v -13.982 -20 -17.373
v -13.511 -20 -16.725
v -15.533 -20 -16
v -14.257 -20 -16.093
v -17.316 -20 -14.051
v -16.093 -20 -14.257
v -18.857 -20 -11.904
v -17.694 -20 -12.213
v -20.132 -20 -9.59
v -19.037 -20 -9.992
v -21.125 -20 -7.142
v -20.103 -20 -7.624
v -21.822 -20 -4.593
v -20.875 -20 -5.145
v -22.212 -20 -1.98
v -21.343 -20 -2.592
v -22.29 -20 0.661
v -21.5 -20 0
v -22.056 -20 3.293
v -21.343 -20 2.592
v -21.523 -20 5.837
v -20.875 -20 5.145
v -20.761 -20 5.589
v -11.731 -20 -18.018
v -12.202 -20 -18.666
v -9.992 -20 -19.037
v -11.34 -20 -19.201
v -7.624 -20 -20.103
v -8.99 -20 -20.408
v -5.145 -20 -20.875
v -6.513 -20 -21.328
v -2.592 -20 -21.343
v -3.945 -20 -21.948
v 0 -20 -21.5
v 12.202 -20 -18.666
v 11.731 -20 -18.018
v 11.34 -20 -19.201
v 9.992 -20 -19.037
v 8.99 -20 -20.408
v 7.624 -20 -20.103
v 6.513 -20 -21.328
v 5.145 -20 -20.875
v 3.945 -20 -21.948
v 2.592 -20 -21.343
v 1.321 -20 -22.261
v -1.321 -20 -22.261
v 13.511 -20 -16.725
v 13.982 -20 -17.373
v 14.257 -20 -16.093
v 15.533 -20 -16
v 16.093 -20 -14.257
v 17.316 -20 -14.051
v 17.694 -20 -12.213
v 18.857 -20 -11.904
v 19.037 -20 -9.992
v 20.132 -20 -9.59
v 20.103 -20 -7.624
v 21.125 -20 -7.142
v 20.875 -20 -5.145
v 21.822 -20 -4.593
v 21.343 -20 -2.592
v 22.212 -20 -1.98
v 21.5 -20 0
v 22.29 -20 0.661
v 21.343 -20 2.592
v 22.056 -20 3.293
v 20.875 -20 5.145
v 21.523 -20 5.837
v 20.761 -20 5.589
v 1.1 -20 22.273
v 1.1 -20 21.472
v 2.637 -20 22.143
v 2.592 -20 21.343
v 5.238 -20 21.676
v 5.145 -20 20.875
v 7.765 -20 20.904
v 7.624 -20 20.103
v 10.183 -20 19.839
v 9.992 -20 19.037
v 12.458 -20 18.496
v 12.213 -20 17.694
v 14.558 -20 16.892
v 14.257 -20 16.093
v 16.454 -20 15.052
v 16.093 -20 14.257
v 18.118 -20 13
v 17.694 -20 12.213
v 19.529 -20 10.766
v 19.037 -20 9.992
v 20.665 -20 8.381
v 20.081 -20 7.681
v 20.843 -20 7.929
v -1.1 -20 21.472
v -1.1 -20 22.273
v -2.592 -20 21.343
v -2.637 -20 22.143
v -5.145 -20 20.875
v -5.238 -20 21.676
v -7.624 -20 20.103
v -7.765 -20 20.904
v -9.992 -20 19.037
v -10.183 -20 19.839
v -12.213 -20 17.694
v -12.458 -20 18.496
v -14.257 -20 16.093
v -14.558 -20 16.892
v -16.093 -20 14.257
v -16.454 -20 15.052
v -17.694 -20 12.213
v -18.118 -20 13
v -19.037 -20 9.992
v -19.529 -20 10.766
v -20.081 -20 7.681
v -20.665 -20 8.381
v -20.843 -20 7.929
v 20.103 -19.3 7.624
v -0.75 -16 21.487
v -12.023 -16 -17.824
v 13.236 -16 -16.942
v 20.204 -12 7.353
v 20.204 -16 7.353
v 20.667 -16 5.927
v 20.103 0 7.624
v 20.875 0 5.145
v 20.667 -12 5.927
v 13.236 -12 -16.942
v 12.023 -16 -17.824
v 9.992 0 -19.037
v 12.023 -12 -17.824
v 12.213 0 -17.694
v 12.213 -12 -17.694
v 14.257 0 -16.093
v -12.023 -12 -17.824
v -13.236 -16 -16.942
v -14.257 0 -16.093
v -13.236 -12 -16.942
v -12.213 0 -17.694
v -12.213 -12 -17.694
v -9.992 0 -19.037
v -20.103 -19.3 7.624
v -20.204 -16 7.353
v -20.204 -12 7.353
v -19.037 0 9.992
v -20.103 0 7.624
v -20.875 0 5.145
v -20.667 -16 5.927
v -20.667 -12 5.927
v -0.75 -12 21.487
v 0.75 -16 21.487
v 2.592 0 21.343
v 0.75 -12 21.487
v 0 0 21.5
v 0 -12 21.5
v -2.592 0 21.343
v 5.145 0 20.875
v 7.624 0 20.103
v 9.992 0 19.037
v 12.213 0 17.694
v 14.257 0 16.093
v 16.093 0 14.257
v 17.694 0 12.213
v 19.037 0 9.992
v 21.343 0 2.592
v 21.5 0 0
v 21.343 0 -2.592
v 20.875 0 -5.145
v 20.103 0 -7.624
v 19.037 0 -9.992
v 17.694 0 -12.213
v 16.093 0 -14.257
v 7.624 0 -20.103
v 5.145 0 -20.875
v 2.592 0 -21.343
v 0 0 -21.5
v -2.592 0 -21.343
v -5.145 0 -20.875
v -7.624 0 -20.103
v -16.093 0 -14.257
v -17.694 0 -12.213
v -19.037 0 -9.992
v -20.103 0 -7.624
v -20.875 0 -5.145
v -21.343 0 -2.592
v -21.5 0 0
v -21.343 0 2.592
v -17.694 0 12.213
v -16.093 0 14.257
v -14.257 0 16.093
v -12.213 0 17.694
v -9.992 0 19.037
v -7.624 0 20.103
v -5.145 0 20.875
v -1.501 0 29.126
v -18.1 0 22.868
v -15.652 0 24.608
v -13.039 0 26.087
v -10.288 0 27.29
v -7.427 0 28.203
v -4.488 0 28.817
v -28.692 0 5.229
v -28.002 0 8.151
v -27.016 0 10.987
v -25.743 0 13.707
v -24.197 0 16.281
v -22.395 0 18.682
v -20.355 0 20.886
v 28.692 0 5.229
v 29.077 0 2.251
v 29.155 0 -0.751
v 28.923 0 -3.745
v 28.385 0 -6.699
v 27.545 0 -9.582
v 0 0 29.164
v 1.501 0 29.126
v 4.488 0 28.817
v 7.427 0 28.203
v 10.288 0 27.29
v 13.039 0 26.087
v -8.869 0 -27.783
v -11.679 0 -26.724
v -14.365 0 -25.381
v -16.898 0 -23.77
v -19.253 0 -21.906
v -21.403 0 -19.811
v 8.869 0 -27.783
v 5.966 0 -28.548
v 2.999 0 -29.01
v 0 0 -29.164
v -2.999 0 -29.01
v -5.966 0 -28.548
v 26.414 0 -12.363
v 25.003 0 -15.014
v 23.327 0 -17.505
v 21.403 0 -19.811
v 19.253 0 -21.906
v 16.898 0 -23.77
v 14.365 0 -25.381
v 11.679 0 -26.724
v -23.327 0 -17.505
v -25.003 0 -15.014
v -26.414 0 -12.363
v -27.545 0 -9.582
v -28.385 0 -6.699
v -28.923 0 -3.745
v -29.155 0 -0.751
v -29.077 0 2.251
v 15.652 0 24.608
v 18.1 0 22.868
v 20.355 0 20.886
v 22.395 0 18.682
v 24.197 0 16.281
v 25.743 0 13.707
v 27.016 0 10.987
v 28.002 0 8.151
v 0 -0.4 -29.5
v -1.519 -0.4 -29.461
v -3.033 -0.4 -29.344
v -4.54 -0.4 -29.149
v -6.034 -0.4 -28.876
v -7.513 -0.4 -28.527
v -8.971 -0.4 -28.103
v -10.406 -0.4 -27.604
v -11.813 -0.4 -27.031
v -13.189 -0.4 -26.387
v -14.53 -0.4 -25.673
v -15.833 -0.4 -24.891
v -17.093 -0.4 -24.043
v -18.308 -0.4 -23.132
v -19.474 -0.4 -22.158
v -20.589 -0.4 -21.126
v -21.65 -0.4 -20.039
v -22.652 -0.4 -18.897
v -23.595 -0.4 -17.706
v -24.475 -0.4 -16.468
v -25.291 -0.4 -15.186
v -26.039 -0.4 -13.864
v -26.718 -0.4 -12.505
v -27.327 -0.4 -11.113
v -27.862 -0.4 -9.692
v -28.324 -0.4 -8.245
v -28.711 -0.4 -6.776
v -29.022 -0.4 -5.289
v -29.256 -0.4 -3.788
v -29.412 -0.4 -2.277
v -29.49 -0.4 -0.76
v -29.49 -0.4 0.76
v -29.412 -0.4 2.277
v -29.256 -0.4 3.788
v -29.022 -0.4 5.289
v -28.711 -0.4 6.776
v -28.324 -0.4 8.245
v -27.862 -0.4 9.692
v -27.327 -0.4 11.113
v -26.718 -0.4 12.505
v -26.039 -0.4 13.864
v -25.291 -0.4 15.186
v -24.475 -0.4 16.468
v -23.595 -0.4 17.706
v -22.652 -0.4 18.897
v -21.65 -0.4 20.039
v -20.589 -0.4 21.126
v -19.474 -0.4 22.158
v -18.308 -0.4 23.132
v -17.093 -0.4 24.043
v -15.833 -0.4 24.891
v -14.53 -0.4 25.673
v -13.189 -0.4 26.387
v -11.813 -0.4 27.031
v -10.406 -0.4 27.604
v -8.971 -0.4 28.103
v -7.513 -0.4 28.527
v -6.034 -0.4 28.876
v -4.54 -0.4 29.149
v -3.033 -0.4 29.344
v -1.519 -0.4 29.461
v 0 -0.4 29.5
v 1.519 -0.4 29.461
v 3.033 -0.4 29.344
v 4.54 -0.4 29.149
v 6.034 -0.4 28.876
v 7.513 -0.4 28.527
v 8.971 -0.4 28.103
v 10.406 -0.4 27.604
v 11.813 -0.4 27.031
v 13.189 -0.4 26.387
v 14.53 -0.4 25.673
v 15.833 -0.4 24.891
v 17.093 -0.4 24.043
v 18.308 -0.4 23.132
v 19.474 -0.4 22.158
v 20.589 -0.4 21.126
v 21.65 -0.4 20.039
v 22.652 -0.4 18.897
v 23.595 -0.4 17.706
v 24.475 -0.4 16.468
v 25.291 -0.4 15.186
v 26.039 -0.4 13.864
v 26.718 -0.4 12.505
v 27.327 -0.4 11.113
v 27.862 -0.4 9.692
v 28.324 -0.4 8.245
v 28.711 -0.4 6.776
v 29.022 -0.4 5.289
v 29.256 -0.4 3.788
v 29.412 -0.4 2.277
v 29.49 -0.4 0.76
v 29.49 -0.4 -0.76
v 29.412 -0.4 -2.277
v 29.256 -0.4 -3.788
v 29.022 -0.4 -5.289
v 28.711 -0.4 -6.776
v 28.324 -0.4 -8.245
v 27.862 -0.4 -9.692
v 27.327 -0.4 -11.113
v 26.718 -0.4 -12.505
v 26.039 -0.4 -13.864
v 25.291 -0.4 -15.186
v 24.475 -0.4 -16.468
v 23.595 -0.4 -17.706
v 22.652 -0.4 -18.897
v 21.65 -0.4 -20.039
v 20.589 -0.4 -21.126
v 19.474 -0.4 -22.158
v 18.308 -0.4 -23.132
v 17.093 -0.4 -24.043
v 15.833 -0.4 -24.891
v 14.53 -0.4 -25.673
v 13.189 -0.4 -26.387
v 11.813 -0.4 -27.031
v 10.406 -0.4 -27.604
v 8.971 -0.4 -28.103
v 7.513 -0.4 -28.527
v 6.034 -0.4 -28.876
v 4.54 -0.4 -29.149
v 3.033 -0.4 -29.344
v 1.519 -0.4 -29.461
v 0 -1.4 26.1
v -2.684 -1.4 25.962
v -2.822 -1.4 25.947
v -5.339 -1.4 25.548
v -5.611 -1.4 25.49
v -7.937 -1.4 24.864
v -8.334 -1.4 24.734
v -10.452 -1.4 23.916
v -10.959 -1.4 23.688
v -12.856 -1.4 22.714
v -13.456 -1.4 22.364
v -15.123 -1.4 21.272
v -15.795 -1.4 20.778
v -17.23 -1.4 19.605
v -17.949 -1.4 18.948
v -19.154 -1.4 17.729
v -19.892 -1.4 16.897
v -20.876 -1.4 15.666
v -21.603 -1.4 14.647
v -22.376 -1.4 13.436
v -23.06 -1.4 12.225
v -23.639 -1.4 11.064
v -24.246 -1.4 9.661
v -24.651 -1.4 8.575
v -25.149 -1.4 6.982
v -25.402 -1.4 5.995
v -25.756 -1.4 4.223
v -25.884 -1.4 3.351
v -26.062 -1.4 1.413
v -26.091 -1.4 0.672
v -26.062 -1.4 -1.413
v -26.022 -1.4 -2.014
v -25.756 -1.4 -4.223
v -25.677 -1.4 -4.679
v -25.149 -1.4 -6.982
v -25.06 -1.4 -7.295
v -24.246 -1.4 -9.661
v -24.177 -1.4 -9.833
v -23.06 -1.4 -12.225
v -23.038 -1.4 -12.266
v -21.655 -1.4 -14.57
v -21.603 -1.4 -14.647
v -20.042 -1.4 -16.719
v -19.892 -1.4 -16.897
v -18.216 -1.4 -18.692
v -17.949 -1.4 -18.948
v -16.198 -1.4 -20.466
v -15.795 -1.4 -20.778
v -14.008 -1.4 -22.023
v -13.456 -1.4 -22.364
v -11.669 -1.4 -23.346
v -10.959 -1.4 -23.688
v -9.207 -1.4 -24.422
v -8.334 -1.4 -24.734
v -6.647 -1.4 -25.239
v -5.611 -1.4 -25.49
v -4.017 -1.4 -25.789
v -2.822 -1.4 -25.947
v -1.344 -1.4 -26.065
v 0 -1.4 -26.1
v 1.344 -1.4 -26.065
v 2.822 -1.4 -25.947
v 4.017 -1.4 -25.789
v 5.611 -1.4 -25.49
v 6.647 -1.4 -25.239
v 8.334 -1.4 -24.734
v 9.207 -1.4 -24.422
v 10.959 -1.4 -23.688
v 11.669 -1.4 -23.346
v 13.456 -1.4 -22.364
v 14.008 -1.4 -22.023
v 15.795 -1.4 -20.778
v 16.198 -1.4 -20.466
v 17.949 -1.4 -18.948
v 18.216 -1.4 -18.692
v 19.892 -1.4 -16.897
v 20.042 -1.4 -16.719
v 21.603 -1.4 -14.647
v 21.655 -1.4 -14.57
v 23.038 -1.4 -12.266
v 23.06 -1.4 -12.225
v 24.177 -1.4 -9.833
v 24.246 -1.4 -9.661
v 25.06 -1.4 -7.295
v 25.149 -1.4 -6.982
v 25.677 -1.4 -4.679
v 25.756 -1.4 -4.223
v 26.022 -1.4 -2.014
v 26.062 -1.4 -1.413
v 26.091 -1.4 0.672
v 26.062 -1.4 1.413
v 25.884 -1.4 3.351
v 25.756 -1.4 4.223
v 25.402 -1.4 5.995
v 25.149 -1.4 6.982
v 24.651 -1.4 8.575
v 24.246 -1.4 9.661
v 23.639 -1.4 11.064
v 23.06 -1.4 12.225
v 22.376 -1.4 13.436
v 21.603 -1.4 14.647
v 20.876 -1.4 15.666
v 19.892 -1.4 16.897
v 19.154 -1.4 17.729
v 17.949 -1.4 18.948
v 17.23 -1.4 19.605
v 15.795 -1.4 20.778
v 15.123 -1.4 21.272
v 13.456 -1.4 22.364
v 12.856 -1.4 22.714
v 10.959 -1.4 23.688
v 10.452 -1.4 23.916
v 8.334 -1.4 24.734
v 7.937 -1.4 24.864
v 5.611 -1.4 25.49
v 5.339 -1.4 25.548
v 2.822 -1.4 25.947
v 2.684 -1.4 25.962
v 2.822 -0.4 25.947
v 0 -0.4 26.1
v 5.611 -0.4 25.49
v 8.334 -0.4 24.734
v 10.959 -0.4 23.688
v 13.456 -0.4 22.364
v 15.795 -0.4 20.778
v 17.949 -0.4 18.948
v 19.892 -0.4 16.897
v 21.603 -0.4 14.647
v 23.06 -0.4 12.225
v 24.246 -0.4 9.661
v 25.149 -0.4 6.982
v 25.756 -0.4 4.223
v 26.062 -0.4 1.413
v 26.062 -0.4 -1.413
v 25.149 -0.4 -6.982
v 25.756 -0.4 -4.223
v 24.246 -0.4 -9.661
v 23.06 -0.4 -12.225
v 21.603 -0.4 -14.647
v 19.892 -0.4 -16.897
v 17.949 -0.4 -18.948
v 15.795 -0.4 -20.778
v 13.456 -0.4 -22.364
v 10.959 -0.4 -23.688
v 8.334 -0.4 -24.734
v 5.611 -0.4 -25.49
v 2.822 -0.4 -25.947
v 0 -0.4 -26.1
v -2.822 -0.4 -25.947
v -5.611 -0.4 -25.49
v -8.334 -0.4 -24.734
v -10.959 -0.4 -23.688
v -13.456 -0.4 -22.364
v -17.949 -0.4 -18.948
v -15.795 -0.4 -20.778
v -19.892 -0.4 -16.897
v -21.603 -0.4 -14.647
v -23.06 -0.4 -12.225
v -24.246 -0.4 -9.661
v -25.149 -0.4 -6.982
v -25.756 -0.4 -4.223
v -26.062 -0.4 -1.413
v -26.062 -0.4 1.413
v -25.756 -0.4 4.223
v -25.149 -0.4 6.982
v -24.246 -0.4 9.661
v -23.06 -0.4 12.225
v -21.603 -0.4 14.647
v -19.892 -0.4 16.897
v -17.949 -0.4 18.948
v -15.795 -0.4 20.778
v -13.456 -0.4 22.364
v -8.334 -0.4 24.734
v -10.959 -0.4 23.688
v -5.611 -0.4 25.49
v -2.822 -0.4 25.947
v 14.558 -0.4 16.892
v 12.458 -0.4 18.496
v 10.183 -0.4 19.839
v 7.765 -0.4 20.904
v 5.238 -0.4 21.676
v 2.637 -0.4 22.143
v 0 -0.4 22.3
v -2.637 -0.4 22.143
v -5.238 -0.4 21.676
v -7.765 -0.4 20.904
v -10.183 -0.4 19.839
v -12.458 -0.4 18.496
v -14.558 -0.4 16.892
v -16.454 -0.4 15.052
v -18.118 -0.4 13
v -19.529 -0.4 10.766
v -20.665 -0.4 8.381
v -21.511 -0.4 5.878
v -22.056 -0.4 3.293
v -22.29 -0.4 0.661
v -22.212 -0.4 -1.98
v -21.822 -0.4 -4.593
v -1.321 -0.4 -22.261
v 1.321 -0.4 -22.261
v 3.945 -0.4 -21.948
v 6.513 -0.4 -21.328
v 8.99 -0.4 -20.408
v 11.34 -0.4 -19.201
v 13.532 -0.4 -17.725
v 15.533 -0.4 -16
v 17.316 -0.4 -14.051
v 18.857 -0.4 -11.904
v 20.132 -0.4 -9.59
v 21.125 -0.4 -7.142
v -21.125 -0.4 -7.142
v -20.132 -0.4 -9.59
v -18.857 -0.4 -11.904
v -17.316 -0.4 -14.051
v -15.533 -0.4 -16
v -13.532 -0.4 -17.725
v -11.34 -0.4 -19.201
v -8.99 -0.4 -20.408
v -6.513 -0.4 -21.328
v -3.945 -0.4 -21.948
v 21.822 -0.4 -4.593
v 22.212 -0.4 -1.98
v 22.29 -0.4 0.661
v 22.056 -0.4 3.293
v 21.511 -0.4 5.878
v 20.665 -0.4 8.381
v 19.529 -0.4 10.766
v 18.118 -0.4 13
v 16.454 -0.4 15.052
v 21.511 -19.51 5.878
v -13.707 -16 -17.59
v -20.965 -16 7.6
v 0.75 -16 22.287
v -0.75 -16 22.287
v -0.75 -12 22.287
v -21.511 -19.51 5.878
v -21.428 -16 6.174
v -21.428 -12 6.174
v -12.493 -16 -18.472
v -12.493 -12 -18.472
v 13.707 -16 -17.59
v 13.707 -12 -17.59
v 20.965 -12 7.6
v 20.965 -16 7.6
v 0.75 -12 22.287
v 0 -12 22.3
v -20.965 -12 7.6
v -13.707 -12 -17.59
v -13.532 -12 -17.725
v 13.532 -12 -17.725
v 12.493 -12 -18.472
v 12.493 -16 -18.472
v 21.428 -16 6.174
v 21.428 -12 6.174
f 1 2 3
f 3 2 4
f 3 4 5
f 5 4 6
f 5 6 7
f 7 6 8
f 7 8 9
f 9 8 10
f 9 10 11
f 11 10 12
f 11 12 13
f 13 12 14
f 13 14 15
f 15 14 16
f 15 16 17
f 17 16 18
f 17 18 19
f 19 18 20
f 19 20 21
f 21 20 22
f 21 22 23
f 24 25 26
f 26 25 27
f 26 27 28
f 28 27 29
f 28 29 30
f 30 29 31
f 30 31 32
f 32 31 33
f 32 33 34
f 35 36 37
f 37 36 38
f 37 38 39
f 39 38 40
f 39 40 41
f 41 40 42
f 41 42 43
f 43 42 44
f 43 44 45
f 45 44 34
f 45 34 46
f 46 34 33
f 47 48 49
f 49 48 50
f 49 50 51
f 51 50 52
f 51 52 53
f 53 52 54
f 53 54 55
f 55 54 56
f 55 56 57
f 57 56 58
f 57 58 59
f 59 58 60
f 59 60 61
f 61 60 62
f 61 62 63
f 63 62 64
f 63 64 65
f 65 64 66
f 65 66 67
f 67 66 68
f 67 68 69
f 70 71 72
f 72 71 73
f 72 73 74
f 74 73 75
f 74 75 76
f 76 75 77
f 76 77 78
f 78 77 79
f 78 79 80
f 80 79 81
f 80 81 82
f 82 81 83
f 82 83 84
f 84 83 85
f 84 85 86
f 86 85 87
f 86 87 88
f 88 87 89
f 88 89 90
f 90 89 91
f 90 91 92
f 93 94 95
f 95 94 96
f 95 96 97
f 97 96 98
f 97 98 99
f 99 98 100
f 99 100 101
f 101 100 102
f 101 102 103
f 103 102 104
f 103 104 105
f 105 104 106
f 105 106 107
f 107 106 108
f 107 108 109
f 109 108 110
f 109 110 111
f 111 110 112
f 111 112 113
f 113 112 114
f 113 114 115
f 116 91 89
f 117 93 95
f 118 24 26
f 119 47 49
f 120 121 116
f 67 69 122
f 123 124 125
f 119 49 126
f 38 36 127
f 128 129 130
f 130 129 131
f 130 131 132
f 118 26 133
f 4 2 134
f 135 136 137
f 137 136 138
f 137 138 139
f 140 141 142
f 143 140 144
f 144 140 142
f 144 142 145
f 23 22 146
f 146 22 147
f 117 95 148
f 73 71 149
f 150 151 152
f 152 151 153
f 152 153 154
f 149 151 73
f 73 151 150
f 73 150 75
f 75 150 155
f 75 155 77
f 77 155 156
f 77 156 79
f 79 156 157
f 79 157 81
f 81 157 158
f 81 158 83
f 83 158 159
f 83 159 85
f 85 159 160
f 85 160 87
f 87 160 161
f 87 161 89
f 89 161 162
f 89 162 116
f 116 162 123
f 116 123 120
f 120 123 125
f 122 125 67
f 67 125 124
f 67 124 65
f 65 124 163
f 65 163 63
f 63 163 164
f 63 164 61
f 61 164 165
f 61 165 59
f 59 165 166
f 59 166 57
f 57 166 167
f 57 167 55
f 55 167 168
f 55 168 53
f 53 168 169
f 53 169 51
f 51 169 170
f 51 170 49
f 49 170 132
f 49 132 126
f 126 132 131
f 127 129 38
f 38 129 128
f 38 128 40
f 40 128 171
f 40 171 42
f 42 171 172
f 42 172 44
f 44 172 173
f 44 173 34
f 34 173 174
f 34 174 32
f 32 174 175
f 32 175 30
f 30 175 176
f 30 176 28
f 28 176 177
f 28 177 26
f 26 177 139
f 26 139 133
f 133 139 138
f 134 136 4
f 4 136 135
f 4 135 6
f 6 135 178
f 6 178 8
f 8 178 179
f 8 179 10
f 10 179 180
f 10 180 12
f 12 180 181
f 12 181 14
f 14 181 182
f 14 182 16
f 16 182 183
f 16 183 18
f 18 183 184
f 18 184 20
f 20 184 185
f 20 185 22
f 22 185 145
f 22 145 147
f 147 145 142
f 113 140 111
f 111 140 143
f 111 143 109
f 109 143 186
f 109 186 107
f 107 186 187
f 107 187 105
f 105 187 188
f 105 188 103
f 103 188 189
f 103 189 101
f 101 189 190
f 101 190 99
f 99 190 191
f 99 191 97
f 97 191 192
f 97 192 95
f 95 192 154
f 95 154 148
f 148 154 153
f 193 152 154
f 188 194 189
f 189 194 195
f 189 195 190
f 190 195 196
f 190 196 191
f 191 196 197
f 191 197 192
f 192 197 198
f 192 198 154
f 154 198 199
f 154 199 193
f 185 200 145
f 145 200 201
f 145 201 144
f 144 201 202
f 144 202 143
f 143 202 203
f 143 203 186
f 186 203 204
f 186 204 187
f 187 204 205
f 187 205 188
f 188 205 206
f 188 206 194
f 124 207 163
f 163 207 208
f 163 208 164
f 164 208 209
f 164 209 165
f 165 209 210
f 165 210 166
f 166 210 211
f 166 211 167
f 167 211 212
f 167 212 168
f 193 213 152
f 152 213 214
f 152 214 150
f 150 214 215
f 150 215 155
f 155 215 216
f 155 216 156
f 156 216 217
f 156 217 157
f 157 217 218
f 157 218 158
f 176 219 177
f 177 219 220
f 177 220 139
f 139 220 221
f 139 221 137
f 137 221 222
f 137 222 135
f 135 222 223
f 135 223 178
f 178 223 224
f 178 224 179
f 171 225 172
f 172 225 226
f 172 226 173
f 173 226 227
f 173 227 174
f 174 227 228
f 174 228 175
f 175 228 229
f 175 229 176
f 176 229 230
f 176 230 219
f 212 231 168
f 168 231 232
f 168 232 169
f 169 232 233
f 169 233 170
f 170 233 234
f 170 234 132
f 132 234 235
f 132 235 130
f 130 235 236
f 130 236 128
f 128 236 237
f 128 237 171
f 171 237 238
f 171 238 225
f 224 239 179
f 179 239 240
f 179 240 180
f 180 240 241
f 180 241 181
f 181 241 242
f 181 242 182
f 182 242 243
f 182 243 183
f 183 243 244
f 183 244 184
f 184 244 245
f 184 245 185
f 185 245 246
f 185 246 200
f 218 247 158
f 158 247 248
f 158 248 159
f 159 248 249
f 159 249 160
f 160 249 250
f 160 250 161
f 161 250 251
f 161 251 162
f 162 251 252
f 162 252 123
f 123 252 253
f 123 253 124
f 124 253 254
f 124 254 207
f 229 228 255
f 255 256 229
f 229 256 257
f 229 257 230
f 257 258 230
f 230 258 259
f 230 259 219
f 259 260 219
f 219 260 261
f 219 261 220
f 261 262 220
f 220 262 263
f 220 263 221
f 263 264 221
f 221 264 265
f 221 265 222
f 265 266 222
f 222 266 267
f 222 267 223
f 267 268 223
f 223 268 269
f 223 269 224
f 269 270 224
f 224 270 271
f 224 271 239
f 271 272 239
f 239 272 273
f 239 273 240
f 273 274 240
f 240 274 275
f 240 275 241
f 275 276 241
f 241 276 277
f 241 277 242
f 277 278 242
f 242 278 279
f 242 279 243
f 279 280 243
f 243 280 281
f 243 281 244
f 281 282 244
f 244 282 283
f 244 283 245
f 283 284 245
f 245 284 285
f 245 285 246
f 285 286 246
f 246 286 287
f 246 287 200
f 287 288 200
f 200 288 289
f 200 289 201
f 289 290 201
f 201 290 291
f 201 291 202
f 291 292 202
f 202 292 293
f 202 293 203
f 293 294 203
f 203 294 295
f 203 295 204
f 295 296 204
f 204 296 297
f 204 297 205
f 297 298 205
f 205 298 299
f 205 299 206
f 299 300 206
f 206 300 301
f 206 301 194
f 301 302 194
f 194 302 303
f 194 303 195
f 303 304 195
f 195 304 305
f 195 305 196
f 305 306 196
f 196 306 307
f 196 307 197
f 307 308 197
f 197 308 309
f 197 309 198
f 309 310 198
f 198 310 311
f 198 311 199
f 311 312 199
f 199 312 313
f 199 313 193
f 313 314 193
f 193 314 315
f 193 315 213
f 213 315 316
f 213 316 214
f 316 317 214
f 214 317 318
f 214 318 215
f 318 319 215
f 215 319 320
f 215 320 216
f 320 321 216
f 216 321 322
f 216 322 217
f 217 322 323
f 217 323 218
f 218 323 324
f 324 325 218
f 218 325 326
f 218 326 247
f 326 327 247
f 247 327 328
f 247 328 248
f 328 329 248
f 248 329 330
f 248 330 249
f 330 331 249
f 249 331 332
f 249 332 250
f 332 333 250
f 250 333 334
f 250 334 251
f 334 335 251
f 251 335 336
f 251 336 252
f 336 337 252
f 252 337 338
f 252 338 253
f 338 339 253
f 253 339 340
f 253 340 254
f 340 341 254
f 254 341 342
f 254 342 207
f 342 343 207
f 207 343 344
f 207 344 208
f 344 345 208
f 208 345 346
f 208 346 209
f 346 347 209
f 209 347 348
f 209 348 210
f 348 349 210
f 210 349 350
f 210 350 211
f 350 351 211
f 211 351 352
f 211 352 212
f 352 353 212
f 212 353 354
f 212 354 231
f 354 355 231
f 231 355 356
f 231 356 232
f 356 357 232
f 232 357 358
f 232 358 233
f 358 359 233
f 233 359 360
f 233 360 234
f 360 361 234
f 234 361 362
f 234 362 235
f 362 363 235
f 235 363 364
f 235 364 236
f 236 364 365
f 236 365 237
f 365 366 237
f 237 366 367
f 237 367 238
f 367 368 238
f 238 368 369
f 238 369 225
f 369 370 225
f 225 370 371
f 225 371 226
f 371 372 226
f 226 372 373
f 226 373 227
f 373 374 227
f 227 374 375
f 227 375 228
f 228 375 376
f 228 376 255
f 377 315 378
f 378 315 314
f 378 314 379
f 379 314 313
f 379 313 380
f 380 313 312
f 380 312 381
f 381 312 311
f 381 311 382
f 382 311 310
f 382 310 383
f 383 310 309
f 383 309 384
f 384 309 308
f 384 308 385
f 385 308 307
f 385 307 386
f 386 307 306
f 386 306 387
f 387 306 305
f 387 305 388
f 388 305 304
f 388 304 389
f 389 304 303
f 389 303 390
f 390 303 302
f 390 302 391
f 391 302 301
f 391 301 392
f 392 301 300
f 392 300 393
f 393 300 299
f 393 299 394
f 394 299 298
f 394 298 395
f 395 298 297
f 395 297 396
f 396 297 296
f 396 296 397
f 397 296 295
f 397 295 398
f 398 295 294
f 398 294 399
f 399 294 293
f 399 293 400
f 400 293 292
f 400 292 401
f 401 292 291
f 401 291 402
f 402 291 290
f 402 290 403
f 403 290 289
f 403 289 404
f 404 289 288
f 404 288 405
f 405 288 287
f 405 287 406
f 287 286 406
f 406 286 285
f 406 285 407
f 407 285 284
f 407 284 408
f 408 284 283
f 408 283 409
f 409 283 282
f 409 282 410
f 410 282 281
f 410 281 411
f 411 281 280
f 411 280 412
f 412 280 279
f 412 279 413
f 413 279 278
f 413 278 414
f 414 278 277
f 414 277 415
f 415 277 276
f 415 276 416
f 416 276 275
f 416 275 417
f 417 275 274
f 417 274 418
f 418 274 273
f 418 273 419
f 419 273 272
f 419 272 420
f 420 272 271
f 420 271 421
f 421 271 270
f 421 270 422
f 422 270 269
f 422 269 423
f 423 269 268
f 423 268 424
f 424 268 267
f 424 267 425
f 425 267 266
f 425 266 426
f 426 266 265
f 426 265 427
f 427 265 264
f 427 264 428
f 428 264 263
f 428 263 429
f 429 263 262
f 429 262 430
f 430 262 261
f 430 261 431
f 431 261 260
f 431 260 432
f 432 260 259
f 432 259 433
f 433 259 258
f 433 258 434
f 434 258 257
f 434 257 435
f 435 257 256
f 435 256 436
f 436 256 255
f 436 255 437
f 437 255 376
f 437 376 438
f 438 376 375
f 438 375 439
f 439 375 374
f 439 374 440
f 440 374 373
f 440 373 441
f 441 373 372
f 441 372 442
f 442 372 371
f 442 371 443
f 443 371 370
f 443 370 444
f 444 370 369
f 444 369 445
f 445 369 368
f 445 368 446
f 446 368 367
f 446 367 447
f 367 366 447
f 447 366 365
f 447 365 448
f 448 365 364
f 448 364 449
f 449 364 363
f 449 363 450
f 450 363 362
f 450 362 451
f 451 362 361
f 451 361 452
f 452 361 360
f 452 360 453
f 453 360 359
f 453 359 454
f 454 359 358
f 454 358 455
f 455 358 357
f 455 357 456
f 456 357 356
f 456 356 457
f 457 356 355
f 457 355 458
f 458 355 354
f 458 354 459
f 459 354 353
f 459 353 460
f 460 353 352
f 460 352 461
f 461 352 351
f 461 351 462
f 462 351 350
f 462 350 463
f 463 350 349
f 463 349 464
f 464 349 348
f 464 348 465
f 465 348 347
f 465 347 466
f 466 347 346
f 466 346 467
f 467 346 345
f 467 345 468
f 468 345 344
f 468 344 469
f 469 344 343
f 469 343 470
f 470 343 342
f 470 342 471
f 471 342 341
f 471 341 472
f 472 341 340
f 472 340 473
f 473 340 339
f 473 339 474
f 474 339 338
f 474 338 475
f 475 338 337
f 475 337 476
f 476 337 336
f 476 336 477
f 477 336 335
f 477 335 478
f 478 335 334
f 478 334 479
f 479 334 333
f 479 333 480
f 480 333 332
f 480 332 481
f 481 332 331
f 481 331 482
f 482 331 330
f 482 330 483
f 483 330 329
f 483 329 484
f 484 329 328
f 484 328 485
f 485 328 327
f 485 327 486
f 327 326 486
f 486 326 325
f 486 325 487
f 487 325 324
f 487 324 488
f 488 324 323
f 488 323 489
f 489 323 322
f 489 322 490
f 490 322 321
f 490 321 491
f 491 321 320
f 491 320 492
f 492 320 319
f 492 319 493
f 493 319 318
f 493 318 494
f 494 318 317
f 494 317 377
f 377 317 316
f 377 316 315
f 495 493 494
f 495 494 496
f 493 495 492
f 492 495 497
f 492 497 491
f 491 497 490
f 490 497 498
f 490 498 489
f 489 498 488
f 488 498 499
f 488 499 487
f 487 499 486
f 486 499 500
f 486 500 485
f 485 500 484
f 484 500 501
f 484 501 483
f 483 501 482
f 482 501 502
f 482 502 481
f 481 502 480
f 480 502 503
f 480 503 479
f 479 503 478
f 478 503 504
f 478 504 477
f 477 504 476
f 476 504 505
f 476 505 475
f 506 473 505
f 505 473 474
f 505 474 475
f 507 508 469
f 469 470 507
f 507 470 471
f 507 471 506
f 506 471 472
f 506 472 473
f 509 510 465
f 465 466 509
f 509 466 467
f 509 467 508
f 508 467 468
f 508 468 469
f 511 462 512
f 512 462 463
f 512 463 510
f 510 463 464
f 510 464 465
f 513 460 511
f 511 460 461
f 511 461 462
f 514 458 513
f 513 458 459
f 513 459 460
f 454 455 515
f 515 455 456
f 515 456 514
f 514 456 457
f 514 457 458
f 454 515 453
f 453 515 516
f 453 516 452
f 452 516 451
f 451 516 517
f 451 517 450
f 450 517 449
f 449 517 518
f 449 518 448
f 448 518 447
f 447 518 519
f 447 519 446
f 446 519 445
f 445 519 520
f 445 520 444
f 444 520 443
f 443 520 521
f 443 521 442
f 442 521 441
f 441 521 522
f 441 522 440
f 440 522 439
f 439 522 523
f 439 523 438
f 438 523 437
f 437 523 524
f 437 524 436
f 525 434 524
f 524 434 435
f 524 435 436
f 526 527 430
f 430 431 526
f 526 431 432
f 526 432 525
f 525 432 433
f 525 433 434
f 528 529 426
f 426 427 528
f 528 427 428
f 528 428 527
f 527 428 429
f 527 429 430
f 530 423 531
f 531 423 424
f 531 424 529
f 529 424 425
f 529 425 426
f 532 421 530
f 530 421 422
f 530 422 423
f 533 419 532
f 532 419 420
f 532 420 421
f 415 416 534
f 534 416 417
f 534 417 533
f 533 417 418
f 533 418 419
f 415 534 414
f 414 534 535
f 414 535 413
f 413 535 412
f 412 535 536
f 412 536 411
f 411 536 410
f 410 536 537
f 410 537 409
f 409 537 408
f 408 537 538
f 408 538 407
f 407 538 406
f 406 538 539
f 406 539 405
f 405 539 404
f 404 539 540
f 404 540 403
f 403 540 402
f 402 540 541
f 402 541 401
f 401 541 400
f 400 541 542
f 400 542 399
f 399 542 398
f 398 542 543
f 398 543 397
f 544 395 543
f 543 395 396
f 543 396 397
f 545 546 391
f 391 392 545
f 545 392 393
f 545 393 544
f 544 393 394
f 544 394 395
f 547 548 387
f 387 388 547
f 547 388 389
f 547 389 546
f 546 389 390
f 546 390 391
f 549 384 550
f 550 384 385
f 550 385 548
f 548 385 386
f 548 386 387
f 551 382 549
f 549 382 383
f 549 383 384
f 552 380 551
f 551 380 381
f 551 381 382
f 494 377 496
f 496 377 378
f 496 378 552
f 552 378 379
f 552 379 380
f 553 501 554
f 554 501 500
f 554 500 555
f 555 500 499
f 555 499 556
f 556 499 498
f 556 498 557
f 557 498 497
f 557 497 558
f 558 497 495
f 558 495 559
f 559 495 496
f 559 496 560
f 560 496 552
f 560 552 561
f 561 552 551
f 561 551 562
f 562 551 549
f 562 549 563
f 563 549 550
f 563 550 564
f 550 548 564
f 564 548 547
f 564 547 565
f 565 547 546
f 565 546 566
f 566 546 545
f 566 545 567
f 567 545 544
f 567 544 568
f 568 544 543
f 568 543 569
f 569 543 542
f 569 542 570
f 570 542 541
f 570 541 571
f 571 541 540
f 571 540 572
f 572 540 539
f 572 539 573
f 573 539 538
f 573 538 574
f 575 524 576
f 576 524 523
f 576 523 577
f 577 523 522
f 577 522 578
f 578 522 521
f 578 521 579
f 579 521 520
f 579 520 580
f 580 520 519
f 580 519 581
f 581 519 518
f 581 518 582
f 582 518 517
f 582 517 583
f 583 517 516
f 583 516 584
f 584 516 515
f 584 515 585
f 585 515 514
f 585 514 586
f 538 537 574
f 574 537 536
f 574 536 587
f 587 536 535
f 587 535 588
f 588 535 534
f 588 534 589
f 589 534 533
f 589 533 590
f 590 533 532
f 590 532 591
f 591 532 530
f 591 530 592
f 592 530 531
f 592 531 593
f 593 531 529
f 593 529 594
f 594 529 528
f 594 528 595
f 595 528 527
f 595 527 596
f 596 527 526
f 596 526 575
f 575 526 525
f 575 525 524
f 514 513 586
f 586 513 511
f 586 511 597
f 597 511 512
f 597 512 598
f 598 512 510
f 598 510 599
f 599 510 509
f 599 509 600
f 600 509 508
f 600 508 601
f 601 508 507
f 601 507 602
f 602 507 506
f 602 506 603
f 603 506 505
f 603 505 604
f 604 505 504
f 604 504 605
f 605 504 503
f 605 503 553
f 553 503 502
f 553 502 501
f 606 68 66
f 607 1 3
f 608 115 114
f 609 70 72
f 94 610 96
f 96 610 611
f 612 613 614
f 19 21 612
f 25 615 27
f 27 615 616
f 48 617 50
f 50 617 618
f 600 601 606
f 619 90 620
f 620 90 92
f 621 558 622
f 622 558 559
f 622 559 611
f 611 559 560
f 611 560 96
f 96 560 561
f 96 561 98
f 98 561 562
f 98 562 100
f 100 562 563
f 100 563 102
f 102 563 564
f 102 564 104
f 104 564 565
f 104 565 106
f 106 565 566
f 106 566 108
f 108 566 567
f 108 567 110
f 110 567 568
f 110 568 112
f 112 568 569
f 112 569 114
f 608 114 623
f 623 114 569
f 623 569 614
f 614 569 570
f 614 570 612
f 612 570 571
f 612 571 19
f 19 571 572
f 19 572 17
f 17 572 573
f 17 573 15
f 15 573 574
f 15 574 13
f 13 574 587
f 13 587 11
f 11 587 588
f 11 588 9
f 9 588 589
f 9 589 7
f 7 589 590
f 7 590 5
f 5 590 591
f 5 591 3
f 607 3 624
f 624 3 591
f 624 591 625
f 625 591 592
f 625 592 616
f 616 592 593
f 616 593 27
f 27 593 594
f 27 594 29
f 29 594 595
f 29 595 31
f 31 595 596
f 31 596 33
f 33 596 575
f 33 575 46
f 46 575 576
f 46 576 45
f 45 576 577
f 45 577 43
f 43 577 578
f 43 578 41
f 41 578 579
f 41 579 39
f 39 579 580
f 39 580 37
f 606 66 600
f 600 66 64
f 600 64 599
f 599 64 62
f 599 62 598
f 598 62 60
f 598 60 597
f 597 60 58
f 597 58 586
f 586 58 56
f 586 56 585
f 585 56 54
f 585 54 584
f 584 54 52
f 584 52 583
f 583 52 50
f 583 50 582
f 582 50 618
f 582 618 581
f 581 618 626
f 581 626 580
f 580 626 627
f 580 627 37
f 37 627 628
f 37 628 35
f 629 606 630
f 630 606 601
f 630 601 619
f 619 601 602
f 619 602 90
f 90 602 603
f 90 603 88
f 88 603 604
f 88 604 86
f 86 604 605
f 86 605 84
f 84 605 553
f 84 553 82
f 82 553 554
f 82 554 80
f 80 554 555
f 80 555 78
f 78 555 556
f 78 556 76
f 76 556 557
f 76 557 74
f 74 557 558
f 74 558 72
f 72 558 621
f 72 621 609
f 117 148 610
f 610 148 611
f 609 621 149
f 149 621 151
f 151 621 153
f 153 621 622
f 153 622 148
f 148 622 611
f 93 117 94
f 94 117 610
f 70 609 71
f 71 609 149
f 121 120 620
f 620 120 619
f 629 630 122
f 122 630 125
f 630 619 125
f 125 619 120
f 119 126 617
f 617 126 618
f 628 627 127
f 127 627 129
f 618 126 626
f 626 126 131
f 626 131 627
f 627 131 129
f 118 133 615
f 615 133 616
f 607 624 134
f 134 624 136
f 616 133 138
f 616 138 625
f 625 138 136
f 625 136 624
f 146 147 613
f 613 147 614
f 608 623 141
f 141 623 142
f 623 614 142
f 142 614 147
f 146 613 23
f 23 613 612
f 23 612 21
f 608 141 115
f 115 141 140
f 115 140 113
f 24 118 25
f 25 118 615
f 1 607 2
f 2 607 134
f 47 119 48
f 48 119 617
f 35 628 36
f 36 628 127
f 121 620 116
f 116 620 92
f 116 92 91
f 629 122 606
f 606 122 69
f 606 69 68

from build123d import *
from OCP.BRepFilletAPI import BRepFilletAPI_MakeChamfer

# Parameters (mm, degrees)
SKETCH2_W                     = 1.5
SKETCH2_H                     = 0.813085377
CUT_EXTRUDE1_DEPTH            = 8
CHAMFER1_SIZE                 = 4
CHAMFER1_SIZE2                = 0.349954654
CIRPATTERN1_COUNT             = 5
CHAMFER1_OF_CIRPATTERN1_SIZE  = 4
CHAMFER1_OF_CIRPATTERN1_SIZE2 = 0.349954654


with BuildPart() as part:
    # Sketch1 → Revolve1 (revolve)
    with BuildSketch(Plane(origin=(0, 0, 0), x_dir=(0, 0, -1), z_dir=(1, 0, 0))):
        Polygon((21.5, -20), (21.5, 0), (29.164360148, 0), (29.5, -0.4), (26.1, -1.4), (26.1, -0.4), (22.3, -0.4), (22.3, -20), align=None)
    revolve(axis=Axis((0, 64.33779776, 0), (0, -1, 0)))

    # Sketch2 → Cut-Extrude1 (cut)
    with BuildSketch(Plane.XZ.offset(20)):
        with Locations((0, 21.893457312)):
            Rectangle(SKETCH2_W, SKETCH2_H)
    cut_extrude1 = extrude(amount=-CUT_EXTRUDE1_DEPTH, mode=Mode.SUBTRACT)

    # Chamfer1: one chamfer whose edges measure the first distance from different faces: ONE call of the kernel's chamfer builder (chamfer() names one face for all edges)
    chamfer1_edges_1 = [part.edges().sort_by_distance(p)[0] for p in [
        (-0.75, -20, 21.887149473),
    ]]
    chamfer1_side_1 = [part.faces().sort_by_distance(p)[0] for p in [
        (-0.75, -16, 21.887149473),
    ]]
    chamfer1_edges_2 = [part.edges().sort_by_distance(p)[0] for p in [
        (0.75, -20, 21.887149473),
    ]]
    chamfer1_side_2 = [part.faces().sort_by_distance(p)[0] for p in [
        (0.75, -16, 21.887149473),
    ]]
    chamfer1 = BRepFilletAPI_MakeChamfer(part.part.solid().wrapped)
    for e in chamfer1_edges_1:
        chamfer1.Add(CHAMFER1_SIZE, CHAMFER1_SIZE2, e.wrapped, chamfer1_side_1[0].wrapped)  # the first distance lies on this face
    for e in chamfer1_edges_2:
        chamfer1.Add(CHAMFER1_SIZE, CHAMFER1_SIZE2, e.wrapped, chamfer1_side_2[0].wrapped)  # the first distance lies on this face
    add(Compound.cast(chamfer1.Shape()), mode=Mode.REPLACE)

    # CirPattern1: Cut-Extrude1 ×5 about axis
    cirpattern1_axis = Axis((0, 64.33779776, 0), (0, -1, 0))
    for i in range(1, CIRPATTERN1_COUNT):
        add(cut_extrude1.rotate(cirpattern1_axis, i * 360 / CIRPATTERN1_COUNT), mode=Mode.SUBTRACT)

    # Chamfer1 of CirPattern1: one chamfer whose edges measure the first distance from different faces: ONE call of the kernel's chamfer builder (chamfer() names one face for all edges)
    chamfer1_of_cirpattern1_edges_1 = [part.edges().sort_by_distance(p)[0] for p in [
        (-21.047678875, -20, 6.050208758),
    ]]
    chamfer1_of_cirpattern1_side_1 = [part.faces().sort_by_distance(p)[0] for p in [
        (-21.047678875, -16, 6.050208758),
    ]]
    chamfer1_of_cirpattern1_edges_2 = [part.edges().sort_by_distance(p)[0] for p in [
        (-20.584153384, -20, 7.476793533),
    ]]
    chamfer1_of_cirpattern1_side_2 = [part.faces().sort_by_distance(p)[0] for p in [
        (-20.584153384, -16, 7.476793533),
    ]]
    chamfer1_of_cirpattern1_edges_3 = [part.edges().sort_by_distance(p)[0] for p in [
        (-12.258180929, -20, -18.147914822),
    ]]
    chamfer1_of_cirpattern1_side_3 = [part.faces().sort_by_distance(p)[0] for p in [
        (-12.258180929, -16, -18.147914822),
    ]]
    chamfer1_of_cirpattern1_edges_4 = [part.edges().sort_by_distance(p)[0] for p in [
        (-13.471706421, -20, -17.266236943),
    ]]
    chamfer1_of_cirpattern1_side_4 = [part.faces().sort_by_distance(p)[0] for p in [
        (-13.471706421, -16, -17.266236943),
    ]]
    chamfer1_of_cirpattern1_edges_5 = [part.edges().sort_by_distance(p)[0] for p in [
        (13.471706421, -20, -17.266236943),
    ]]
    chamfer1_of_cirpattern1_side_5 = [part.faces().sort_by_distance(p)[0] for p in [
        (13.471706421, -16, -17.266236943),
    ]]
    chamfer1_of_cirpattern1_edges_6 = [part.edges().sort_by_distance(p)[0] for p in [
        (12.258180929, -20, -18.147914822),
    ]]
    chamfer1_of_cirpattern1_side_6 = [part.faces().sort_by_distance(p)[0] for p in [
        (12.258180929, -16, -18.147914822),
    ]]
    chamfer1_of_cirpattern1_edges_7 = [part.edges().sort_by_distance(p)[0] for p in [
        (20.584153384, -20, 7.476793533),
    ]]
    chamfer1_of_cirpattern1_side_7 = [part.faces().sort_by_distance(p)[0] for p in [
        (20.584153384, -16, 7.476793533),
    ]]
    chamfer1_of_cirpattern1_edges_8 = [part.edges().sort_by_distance(p)[0] for p in [
        (21.047678875, -20, 6.050208758),
    ]]
    chamfer1_of_cirpattern1_side_8 = [part.faces().sort_by_distance(p)[0] for p in [
        (21.047678875, -16, 6.050208758),
    ]]
    chamfer1_of_cirpattern1 = BRepFilletAPI_MakeChamfer(part.part.solid().wrapped)
    for e in chamfer1_of_cirpattern1_edges_1:
        chamfer1_of_cirpattern1.Add(CHAMFER1_OF_CIRPATTERN1_SIZE, CHAMFER1_OF_CIRPATTERN1_SIZE2, e.wrapped, chamfer1_of_cirpattern1_side_1[0].wrapped)  # the first distance lies on this face
    for e in chamfer1_of_cirpattern1_edges_2:
        chamfer1_of_cirpattern1.Add(CHAMFER1_OF_CIRPATTERN1_SIZE, CHAMFER1_OF_CIRPATTERN1_SIZE2, e.wrapped, chamfer1_of_cirpattern1_side_2[0].wrapped)  # the first distance lies on this face
    for e in chamfer1_of_cirpattern1_edges_3:
        chamfer1_of_cirpattern1.Add(CHAMFER1_OF_CIRPATTERN1_SIZE, CHAMFER1_OF_CIRPATTERN1_SIZE2, e.wrapped, chamfer1_of_cirpattern1_side_3[0].wrapped)  # the first distance lies on this face
    for e in chamfer1_of_cirpattern1_edges_4:
        chamfer1_of_cirpattern1.Add(CHAMFER1_OF_CIRPATTERN1_SIZE, CHAMFER1_OF_CIRPATTERN1_SIZE2, e.wrapped, chamfer1_of_cirpattern1_side_4[0].wrapped)  # the first distance lies on this face
    for e in chamfer1_of_cirpattern1_edges_5:
        chamfer1_of_cirpattern1.Add(CHAMFER1_OF_CIRPATTERN1_SIZE, CHAMFER1_OF_CIRPATTERN1_SIZE2, e.wrapped, chamfer1_of_cirpattern1_side_5[0].wrapped)  # the first distance lies on this face
    for e in chamfer1_of_cirpattern1_edges_6:
        chamfer1_of_cirpattern1.Add(CHAMFER1_OF_CIRPATTERN1_SIZE, CHAMFER1_OF_CIRPATTERN1_SIZE2, e.wrapped, chamfer1_of_cirpattern1_side_6[0].wrapped)  # the first distance lies on this face
    for e in chamfer1_of_cirpattern1_edges_7:
        chamfer1_of_cirpattern1.Add(CHAMFER1_OF_CIRPATTERN1_SIZE, CHAMFER1_OF_CIRPATTERN1_SIZE2, e.wrapped, chamfer1_of_cirpattern1_side_7[0].wrapped)  # the first distance lies on this face
    for e in chamfer1_of_cirpattern1_edges_8:
        chamfer1_of_cirpattern1.Add(CHAMFER1_OF_CIRPATTERN1_SIZE, CHAMFER1_OF_CIRPATTERN1_SIZE2, e.wrapped, chamfer1_of_cirpattern1_side_8[0].wrapped)  # the first distance lies on this face
    add(Compound.cast(chamfer1_of_cirpattern1.Shape()), mode=Mode.REPLACE)


solid = part.part
